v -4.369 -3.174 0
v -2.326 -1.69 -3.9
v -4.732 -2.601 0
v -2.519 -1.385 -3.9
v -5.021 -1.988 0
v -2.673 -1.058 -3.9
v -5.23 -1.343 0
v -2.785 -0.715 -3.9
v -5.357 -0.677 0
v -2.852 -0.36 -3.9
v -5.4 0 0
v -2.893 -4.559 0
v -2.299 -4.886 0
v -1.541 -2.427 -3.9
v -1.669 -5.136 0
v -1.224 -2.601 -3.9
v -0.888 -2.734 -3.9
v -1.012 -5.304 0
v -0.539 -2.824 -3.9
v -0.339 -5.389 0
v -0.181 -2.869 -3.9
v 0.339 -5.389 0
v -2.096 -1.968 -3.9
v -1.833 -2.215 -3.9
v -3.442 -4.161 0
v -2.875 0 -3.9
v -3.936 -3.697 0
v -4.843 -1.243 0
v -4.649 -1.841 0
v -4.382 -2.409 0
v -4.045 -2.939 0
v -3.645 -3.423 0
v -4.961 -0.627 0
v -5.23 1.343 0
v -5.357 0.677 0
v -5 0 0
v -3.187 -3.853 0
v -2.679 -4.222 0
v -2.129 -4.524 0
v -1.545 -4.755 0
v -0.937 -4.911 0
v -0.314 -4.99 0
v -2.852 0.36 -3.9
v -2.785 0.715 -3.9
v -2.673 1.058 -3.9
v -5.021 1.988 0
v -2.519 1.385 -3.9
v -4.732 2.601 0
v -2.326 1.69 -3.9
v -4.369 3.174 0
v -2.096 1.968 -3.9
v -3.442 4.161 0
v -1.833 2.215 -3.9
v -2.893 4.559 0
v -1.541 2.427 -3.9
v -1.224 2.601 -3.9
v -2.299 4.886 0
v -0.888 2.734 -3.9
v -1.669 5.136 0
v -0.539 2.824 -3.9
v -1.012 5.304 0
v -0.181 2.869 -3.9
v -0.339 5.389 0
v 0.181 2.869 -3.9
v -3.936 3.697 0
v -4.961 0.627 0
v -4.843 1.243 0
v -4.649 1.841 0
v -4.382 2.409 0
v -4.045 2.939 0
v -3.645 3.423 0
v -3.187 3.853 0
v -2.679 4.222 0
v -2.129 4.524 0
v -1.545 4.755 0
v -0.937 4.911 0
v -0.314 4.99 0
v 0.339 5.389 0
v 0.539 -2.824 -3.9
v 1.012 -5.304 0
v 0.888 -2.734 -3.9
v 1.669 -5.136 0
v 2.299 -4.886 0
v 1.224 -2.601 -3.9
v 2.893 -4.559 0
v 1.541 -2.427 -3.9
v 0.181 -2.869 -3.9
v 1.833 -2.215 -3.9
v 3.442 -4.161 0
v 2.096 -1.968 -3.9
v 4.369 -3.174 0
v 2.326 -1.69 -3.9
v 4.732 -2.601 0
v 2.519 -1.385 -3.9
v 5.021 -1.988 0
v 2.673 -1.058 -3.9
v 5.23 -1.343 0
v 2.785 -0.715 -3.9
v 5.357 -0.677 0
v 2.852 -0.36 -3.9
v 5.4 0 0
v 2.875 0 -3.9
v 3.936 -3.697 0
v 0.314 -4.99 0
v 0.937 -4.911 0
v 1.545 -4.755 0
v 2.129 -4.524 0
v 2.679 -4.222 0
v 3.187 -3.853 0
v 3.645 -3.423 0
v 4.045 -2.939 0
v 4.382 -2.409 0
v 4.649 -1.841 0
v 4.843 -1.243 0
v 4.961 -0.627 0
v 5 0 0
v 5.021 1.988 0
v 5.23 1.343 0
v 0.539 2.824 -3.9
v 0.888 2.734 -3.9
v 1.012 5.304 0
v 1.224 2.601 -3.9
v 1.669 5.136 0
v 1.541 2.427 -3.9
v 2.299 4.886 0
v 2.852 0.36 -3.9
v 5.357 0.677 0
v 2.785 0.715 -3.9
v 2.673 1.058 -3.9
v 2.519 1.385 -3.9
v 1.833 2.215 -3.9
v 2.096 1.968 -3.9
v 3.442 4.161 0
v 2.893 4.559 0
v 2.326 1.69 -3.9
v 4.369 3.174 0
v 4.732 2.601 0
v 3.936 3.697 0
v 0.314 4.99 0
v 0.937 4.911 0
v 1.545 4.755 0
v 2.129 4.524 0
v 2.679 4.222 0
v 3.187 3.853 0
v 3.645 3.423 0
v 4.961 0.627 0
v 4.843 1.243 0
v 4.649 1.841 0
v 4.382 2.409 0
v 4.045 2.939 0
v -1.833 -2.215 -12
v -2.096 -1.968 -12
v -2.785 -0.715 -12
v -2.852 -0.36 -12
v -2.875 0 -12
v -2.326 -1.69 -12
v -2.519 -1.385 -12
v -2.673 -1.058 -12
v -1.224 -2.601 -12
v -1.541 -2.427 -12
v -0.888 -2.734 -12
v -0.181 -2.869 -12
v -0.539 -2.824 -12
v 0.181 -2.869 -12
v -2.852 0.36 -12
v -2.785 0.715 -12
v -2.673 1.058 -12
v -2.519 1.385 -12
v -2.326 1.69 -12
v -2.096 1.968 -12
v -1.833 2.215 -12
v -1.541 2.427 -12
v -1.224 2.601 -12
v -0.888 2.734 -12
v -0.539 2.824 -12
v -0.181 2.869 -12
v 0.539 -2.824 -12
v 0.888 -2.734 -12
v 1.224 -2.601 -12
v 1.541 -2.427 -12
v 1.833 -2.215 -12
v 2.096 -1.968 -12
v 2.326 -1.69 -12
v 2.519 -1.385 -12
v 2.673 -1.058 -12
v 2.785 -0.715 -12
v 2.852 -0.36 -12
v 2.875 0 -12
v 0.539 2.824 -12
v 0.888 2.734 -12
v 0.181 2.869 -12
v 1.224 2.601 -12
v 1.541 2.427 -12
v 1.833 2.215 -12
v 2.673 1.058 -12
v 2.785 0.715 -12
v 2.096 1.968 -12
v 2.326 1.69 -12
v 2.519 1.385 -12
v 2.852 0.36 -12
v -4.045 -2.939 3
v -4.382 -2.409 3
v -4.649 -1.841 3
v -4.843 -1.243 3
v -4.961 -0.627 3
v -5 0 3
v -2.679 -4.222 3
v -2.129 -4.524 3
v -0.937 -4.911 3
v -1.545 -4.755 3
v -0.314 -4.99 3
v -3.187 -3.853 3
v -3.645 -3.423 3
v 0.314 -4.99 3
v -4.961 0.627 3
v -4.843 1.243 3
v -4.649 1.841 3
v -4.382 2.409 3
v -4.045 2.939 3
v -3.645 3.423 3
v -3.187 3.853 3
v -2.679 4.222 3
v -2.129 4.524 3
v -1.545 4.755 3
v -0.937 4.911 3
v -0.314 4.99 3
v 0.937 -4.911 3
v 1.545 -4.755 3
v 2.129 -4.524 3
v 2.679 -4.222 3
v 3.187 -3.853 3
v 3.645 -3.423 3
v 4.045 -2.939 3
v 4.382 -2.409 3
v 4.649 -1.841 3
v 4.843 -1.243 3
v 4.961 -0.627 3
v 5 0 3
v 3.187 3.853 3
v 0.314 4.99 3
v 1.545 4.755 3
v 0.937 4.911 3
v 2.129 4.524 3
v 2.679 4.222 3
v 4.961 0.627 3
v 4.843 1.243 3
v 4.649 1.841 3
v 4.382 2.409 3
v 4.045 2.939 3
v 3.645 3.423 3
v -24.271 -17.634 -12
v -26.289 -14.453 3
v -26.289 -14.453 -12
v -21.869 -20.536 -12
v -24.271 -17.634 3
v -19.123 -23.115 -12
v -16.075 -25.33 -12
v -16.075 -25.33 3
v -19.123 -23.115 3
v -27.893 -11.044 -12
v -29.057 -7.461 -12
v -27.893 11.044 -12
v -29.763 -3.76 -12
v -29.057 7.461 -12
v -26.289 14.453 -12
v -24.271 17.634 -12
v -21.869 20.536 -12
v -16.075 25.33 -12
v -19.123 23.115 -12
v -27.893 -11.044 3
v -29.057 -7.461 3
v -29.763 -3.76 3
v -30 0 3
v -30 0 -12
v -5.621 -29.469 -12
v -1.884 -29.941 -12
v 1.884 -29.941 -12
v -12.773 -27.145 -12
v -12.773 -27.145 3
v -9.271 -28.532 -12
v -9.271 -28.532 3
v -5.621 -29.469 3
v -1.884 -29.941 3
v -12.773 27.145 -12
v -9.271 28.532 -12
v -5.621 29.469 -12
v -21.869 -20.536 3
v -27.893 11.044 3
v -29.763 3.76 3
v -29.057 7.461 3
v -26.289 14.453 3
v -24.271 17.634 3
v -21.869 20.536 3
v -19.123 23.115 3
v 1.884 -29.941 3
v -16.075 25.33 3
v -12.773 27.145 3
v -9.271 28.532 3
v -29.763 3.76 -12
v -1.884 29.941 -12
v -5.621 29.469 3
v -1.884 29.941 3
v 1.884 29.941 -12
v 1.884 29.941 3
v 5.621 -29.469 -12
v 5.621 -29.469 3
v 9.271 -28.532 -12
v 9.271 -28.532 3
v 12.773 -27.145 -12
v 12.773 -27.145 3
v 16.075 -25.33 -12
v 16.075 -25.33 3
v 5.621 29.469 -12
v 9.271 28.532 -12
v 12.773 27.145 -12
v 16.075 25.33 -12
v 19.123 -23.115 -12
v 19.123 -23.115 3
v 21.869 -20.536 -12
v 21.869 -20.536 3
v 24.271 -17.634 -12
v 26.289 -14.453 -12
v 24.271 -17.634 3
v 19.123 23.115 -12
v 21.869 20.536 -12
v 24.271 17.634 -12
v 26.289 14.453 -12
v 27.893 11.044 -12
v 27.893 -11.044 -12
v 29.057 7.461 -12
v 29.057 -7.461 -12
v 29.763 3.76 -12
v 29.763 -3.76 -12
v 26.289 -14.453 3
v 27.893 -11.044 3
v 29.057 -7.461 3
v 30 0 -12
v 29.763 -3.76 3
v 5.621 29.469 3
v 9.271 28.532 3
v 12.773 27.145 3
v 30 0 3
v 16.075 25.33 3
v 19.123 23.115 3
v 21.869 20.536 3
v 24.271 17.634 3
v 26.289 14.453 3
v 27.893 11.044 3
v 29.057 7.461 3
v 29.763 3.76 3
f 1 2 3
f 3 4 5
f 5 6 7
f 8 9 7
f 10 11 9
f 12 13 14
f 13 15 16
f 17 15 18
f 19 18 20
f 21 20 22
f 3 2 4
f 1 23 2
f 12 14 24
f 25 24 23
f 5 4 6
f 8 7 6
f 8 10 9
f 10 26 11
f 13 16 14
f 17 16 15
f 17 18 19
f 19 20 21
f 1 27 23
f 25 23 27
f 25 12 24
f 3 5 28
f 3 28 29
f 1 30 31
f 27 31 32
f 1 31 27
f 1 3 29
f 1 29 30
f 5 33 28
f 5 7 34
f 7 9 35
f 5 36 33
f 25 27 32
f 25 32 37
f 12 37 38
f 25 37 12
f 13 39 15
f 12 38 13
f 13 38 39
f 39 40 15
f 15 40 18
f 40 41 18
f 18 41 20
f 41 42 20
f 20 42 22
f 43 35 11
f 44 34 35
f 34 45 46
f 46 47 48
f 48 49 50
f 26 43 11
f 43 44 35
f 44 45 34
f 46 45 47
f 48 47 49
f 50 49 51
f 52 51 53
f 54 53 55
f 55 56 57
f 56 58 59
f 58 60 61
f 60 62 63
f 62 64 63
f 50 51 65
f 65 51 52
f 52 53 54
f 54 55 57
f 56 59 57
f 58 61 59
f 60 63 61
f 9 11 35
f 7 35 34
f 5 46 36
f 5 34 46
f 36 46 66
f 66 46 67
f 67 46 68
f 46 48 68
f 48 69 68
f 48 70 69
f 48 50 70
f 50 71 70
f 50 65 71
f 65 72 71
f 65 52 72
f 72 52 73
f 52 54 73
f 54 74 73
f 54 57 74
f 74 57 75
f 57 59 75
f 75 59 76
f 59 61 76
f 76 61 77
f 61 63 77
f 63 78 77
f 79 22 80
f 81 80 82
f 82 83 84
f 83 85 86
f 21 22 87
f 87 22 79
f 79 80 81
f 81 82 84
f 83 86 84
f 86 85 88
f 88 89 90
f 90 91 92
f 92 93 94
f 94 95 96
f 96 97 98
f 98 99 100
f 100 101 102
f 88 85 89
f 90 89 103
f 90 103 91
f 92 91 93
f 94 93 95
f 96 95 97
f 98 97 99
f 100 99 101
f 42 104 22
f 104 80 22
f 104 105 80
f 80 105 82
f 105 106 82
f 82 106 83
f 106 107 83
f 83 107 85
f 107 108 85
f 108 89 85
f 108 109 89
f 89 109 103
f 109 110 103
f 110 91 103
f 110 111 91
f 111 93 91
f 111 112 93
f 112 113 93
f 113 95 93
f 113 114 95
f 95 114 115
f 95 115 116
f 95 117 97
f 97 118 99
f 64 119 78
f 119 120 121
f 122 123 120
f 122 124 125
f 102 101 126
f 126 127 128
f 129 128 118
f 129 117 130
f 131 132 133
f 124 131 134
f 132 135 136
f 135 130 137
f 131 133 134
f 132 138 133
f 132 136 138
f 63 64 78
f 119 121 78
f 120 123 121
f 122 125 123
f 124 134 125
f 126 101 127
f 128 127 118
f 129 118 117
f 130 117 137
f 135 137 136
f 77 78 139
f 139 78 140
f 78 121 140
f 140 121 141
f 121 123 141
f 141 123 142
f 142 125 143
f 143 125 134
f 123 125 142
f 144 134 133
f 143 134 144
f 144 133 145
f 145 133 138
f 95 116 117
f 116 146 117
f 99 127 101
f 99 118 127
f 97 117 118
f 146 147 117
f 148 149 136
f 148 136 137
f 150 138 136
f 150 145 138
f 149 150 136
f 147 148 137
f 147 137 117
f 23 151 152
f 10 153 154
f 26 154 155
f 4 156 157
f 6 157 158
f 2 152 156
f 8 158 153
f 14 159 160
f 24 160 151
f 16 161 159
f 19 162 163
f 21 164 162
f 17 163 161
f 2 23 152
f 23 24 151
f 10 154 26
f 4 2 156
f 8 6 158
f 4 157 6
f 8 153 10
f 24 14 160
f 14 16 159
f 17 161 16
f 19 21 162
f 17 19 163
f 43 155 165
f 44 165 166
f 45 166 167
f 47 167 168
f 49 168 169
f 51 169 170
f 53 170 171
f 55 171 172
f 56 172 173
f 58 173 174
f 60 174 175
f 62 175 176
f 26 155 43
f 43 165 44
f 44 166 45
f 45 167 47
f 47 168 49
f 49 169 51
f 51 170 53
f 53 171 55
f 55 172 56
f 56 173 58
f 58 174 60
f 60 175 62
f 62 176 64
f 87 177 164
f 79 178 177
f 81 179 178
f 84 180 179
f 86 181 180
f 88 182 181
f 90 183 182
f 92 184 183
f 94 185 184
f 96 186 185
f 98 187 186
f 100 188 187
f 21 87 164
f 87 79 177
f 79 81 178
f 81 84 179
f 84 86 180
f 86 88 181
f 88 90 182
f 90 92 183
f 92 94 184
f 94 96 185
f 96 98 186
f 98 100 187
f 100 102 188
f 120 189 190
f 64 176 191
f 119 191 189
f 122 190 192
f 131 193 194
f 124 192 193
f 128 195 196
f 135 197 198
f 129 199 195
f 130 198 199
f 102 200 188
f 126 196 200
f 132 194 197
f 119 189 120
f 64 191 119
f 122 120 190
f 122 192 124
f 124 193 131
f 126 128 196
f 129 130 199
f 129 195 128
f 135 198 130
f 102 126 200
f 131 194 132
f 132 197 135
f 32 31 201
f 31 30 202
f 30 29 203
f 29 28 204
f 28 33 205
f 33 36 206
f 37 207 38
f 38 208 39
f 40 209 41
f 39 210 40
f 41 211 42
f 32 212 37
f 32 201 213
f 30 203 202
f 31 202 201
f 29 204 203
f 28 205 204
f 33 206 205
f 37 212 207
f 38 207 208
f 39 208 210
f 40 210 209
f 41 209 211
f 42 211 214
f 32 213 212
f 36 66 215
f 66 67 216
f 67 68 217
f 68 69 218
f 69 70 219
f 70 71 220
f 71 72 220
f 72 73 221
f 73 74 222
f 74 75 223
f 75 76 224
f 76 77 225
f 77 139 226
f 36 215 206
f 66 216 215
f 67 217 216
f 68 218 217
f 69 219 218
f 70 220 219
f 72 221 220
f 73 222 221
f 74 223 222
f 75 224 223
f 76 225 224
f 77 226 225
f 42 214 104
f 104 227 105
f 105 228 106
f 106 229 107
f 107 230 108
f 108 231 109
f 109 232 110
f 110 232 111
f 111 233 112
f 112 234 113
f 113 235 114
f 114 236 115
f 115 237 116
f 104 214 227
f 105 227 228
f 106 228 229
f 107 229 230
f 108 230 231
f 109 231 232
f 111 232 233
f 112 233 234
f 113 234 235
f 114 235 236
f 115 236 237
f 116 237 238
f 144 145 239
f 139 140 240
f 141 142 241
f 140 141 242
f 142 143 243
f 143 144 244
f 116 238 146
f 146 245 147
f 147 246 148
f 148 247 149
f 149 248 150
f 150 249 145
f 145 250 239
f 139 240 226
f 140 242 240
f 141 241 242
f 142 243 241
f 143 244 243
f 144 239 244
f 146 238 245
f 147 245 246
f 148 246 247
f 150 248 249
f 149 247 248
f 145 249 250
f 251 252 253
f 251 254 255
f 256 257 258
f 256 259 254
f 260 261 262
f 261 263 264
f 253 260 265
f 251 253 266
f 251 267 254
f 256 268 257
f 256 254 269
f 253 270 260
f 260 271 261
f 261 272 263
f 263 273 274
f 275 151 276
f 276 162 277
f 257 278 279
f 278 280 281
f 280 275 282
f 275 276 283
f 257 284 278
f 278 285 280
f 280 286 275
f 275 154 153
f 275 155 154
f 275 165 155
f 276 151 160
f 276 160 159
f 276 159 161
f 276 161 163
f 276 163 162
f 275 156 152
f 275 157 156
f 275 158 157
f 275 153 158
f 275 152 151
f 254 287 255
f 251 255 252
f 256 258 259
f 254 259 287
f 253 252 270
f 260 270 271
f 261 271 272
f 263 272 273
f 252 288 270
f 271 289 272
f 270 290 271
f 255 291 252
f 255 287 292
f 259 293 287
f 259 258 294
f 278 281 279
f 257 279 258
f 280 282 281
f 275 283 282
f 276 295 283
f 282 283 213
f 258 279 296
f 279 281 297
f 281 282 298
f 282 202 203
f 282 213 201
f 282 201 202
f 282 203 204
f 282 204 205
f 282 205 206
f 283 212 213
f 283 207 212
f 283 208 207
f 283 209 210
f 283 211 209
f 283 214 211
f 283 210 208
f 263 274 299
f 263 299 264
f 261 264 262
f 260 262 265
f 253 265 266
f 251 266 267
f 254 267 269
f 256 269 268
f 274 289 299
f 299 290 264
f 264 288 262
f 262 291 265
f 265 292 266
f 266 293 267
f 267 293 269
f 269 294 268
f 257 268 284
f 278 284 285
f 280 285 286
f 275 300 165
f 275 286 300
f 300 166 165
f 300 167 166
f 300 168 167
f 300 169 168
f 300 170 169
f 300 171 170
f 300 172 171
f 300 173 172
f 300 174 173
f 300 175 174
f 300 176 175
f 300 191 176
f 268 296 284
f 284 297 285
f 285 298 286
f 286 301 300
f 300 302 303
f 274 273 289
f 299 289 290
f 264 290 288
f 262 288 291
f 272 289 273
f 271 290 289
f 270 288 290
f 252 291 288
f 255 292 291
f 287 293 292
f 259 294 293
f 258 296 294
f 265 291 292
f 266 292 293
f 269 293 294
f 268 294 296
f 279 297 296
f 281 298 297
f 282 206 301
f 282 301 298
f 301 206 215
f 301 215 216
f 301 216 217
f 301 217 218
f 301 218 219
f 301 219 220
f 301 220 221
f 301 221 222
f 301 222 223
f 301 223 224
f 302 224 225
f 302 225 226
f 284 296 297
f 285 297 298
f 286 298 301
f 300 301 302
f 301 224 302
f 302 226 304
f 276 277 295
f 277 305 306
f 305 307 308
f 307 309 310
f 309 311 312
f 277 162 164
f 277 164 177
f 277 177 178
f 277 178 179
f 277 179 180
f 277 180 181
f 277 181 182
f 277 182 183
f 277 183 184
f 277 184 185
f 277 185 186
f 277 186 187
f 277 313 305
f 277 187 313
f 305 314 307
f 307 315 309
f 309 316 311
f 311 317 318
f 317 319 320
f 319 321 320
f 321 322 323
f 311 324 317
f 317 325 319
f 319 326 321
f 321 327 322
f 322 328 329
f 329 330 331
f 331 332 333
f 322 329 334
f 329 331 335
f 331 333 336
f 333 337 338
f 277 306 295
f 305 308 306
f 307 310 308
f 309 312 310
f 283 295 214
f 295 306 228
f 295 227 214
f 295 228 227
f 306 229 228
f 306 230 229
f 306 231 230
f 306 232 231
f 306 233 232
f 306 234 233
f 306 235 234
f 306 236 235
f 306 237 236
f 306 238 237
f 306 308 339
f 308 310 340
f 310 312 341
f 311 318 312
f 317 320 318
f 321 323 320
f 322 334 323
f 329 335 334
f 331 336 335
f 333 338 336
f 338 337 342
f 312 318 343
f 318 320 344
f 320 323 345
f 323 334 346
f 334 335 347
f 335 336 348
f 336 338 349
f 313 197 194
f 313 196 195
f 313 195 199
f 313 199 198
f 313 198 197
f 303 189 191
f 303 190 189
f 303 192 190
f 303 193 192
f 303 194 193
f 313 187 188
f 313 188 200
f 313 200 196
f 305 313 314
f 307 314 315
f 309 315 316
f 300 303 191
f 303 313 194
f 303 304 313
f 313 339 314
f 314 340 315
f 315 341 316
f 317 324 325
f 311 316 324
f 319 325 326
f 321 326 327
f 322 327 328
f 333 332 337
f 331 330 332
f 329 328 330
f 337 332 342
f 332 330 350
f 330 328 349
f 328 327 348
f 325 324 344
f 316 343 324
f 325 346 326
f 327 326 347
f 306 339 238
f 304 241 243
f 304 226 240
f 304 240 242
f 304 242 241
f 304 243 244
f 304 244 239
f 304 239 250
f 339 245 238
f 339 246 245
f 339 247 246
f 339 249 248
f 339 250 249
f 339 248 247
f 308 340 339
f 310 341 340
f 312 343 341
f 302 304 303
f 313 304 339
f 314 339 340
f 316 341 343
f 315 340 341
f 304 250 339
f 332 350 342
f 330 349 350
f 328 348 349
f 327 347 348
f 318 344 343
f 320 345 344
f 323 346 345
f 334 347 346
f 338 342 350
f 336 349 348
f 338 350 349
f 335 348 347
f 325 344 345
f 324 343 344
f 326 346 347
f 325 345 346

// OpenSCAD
$fn = 50;

difference() {
	union() {
		translate(v = [0, 0, -12.0]) {
			cylinder(h = 15, r = 30.0);
		}
	}
	union() {
		translate(v = [0, 0, 0]) {
			rotate(a = [0, 0, 0]) {
				difference() {
					union() {
						translate(v = [0, 0, -15.0]) {
							cylinder(h = 15, r = 2.6);
						}
						translate(v = [0, 0, -3.9]) {
							cylinder(h = 3.9, r1 = 2.875, r2 = 5.4);
						}
						translate(v = [0, 0, -15.0]) {
							cylinder(h = 15, r = 2.875);
						}
						translate(v = [0, 0, -15.0]) {
							cylinder(h = 15, r = 2.6);
						}
					}
					union();
				}
			}
		}
		#cylinder(h = 3, r = 5.0);
	}
}
